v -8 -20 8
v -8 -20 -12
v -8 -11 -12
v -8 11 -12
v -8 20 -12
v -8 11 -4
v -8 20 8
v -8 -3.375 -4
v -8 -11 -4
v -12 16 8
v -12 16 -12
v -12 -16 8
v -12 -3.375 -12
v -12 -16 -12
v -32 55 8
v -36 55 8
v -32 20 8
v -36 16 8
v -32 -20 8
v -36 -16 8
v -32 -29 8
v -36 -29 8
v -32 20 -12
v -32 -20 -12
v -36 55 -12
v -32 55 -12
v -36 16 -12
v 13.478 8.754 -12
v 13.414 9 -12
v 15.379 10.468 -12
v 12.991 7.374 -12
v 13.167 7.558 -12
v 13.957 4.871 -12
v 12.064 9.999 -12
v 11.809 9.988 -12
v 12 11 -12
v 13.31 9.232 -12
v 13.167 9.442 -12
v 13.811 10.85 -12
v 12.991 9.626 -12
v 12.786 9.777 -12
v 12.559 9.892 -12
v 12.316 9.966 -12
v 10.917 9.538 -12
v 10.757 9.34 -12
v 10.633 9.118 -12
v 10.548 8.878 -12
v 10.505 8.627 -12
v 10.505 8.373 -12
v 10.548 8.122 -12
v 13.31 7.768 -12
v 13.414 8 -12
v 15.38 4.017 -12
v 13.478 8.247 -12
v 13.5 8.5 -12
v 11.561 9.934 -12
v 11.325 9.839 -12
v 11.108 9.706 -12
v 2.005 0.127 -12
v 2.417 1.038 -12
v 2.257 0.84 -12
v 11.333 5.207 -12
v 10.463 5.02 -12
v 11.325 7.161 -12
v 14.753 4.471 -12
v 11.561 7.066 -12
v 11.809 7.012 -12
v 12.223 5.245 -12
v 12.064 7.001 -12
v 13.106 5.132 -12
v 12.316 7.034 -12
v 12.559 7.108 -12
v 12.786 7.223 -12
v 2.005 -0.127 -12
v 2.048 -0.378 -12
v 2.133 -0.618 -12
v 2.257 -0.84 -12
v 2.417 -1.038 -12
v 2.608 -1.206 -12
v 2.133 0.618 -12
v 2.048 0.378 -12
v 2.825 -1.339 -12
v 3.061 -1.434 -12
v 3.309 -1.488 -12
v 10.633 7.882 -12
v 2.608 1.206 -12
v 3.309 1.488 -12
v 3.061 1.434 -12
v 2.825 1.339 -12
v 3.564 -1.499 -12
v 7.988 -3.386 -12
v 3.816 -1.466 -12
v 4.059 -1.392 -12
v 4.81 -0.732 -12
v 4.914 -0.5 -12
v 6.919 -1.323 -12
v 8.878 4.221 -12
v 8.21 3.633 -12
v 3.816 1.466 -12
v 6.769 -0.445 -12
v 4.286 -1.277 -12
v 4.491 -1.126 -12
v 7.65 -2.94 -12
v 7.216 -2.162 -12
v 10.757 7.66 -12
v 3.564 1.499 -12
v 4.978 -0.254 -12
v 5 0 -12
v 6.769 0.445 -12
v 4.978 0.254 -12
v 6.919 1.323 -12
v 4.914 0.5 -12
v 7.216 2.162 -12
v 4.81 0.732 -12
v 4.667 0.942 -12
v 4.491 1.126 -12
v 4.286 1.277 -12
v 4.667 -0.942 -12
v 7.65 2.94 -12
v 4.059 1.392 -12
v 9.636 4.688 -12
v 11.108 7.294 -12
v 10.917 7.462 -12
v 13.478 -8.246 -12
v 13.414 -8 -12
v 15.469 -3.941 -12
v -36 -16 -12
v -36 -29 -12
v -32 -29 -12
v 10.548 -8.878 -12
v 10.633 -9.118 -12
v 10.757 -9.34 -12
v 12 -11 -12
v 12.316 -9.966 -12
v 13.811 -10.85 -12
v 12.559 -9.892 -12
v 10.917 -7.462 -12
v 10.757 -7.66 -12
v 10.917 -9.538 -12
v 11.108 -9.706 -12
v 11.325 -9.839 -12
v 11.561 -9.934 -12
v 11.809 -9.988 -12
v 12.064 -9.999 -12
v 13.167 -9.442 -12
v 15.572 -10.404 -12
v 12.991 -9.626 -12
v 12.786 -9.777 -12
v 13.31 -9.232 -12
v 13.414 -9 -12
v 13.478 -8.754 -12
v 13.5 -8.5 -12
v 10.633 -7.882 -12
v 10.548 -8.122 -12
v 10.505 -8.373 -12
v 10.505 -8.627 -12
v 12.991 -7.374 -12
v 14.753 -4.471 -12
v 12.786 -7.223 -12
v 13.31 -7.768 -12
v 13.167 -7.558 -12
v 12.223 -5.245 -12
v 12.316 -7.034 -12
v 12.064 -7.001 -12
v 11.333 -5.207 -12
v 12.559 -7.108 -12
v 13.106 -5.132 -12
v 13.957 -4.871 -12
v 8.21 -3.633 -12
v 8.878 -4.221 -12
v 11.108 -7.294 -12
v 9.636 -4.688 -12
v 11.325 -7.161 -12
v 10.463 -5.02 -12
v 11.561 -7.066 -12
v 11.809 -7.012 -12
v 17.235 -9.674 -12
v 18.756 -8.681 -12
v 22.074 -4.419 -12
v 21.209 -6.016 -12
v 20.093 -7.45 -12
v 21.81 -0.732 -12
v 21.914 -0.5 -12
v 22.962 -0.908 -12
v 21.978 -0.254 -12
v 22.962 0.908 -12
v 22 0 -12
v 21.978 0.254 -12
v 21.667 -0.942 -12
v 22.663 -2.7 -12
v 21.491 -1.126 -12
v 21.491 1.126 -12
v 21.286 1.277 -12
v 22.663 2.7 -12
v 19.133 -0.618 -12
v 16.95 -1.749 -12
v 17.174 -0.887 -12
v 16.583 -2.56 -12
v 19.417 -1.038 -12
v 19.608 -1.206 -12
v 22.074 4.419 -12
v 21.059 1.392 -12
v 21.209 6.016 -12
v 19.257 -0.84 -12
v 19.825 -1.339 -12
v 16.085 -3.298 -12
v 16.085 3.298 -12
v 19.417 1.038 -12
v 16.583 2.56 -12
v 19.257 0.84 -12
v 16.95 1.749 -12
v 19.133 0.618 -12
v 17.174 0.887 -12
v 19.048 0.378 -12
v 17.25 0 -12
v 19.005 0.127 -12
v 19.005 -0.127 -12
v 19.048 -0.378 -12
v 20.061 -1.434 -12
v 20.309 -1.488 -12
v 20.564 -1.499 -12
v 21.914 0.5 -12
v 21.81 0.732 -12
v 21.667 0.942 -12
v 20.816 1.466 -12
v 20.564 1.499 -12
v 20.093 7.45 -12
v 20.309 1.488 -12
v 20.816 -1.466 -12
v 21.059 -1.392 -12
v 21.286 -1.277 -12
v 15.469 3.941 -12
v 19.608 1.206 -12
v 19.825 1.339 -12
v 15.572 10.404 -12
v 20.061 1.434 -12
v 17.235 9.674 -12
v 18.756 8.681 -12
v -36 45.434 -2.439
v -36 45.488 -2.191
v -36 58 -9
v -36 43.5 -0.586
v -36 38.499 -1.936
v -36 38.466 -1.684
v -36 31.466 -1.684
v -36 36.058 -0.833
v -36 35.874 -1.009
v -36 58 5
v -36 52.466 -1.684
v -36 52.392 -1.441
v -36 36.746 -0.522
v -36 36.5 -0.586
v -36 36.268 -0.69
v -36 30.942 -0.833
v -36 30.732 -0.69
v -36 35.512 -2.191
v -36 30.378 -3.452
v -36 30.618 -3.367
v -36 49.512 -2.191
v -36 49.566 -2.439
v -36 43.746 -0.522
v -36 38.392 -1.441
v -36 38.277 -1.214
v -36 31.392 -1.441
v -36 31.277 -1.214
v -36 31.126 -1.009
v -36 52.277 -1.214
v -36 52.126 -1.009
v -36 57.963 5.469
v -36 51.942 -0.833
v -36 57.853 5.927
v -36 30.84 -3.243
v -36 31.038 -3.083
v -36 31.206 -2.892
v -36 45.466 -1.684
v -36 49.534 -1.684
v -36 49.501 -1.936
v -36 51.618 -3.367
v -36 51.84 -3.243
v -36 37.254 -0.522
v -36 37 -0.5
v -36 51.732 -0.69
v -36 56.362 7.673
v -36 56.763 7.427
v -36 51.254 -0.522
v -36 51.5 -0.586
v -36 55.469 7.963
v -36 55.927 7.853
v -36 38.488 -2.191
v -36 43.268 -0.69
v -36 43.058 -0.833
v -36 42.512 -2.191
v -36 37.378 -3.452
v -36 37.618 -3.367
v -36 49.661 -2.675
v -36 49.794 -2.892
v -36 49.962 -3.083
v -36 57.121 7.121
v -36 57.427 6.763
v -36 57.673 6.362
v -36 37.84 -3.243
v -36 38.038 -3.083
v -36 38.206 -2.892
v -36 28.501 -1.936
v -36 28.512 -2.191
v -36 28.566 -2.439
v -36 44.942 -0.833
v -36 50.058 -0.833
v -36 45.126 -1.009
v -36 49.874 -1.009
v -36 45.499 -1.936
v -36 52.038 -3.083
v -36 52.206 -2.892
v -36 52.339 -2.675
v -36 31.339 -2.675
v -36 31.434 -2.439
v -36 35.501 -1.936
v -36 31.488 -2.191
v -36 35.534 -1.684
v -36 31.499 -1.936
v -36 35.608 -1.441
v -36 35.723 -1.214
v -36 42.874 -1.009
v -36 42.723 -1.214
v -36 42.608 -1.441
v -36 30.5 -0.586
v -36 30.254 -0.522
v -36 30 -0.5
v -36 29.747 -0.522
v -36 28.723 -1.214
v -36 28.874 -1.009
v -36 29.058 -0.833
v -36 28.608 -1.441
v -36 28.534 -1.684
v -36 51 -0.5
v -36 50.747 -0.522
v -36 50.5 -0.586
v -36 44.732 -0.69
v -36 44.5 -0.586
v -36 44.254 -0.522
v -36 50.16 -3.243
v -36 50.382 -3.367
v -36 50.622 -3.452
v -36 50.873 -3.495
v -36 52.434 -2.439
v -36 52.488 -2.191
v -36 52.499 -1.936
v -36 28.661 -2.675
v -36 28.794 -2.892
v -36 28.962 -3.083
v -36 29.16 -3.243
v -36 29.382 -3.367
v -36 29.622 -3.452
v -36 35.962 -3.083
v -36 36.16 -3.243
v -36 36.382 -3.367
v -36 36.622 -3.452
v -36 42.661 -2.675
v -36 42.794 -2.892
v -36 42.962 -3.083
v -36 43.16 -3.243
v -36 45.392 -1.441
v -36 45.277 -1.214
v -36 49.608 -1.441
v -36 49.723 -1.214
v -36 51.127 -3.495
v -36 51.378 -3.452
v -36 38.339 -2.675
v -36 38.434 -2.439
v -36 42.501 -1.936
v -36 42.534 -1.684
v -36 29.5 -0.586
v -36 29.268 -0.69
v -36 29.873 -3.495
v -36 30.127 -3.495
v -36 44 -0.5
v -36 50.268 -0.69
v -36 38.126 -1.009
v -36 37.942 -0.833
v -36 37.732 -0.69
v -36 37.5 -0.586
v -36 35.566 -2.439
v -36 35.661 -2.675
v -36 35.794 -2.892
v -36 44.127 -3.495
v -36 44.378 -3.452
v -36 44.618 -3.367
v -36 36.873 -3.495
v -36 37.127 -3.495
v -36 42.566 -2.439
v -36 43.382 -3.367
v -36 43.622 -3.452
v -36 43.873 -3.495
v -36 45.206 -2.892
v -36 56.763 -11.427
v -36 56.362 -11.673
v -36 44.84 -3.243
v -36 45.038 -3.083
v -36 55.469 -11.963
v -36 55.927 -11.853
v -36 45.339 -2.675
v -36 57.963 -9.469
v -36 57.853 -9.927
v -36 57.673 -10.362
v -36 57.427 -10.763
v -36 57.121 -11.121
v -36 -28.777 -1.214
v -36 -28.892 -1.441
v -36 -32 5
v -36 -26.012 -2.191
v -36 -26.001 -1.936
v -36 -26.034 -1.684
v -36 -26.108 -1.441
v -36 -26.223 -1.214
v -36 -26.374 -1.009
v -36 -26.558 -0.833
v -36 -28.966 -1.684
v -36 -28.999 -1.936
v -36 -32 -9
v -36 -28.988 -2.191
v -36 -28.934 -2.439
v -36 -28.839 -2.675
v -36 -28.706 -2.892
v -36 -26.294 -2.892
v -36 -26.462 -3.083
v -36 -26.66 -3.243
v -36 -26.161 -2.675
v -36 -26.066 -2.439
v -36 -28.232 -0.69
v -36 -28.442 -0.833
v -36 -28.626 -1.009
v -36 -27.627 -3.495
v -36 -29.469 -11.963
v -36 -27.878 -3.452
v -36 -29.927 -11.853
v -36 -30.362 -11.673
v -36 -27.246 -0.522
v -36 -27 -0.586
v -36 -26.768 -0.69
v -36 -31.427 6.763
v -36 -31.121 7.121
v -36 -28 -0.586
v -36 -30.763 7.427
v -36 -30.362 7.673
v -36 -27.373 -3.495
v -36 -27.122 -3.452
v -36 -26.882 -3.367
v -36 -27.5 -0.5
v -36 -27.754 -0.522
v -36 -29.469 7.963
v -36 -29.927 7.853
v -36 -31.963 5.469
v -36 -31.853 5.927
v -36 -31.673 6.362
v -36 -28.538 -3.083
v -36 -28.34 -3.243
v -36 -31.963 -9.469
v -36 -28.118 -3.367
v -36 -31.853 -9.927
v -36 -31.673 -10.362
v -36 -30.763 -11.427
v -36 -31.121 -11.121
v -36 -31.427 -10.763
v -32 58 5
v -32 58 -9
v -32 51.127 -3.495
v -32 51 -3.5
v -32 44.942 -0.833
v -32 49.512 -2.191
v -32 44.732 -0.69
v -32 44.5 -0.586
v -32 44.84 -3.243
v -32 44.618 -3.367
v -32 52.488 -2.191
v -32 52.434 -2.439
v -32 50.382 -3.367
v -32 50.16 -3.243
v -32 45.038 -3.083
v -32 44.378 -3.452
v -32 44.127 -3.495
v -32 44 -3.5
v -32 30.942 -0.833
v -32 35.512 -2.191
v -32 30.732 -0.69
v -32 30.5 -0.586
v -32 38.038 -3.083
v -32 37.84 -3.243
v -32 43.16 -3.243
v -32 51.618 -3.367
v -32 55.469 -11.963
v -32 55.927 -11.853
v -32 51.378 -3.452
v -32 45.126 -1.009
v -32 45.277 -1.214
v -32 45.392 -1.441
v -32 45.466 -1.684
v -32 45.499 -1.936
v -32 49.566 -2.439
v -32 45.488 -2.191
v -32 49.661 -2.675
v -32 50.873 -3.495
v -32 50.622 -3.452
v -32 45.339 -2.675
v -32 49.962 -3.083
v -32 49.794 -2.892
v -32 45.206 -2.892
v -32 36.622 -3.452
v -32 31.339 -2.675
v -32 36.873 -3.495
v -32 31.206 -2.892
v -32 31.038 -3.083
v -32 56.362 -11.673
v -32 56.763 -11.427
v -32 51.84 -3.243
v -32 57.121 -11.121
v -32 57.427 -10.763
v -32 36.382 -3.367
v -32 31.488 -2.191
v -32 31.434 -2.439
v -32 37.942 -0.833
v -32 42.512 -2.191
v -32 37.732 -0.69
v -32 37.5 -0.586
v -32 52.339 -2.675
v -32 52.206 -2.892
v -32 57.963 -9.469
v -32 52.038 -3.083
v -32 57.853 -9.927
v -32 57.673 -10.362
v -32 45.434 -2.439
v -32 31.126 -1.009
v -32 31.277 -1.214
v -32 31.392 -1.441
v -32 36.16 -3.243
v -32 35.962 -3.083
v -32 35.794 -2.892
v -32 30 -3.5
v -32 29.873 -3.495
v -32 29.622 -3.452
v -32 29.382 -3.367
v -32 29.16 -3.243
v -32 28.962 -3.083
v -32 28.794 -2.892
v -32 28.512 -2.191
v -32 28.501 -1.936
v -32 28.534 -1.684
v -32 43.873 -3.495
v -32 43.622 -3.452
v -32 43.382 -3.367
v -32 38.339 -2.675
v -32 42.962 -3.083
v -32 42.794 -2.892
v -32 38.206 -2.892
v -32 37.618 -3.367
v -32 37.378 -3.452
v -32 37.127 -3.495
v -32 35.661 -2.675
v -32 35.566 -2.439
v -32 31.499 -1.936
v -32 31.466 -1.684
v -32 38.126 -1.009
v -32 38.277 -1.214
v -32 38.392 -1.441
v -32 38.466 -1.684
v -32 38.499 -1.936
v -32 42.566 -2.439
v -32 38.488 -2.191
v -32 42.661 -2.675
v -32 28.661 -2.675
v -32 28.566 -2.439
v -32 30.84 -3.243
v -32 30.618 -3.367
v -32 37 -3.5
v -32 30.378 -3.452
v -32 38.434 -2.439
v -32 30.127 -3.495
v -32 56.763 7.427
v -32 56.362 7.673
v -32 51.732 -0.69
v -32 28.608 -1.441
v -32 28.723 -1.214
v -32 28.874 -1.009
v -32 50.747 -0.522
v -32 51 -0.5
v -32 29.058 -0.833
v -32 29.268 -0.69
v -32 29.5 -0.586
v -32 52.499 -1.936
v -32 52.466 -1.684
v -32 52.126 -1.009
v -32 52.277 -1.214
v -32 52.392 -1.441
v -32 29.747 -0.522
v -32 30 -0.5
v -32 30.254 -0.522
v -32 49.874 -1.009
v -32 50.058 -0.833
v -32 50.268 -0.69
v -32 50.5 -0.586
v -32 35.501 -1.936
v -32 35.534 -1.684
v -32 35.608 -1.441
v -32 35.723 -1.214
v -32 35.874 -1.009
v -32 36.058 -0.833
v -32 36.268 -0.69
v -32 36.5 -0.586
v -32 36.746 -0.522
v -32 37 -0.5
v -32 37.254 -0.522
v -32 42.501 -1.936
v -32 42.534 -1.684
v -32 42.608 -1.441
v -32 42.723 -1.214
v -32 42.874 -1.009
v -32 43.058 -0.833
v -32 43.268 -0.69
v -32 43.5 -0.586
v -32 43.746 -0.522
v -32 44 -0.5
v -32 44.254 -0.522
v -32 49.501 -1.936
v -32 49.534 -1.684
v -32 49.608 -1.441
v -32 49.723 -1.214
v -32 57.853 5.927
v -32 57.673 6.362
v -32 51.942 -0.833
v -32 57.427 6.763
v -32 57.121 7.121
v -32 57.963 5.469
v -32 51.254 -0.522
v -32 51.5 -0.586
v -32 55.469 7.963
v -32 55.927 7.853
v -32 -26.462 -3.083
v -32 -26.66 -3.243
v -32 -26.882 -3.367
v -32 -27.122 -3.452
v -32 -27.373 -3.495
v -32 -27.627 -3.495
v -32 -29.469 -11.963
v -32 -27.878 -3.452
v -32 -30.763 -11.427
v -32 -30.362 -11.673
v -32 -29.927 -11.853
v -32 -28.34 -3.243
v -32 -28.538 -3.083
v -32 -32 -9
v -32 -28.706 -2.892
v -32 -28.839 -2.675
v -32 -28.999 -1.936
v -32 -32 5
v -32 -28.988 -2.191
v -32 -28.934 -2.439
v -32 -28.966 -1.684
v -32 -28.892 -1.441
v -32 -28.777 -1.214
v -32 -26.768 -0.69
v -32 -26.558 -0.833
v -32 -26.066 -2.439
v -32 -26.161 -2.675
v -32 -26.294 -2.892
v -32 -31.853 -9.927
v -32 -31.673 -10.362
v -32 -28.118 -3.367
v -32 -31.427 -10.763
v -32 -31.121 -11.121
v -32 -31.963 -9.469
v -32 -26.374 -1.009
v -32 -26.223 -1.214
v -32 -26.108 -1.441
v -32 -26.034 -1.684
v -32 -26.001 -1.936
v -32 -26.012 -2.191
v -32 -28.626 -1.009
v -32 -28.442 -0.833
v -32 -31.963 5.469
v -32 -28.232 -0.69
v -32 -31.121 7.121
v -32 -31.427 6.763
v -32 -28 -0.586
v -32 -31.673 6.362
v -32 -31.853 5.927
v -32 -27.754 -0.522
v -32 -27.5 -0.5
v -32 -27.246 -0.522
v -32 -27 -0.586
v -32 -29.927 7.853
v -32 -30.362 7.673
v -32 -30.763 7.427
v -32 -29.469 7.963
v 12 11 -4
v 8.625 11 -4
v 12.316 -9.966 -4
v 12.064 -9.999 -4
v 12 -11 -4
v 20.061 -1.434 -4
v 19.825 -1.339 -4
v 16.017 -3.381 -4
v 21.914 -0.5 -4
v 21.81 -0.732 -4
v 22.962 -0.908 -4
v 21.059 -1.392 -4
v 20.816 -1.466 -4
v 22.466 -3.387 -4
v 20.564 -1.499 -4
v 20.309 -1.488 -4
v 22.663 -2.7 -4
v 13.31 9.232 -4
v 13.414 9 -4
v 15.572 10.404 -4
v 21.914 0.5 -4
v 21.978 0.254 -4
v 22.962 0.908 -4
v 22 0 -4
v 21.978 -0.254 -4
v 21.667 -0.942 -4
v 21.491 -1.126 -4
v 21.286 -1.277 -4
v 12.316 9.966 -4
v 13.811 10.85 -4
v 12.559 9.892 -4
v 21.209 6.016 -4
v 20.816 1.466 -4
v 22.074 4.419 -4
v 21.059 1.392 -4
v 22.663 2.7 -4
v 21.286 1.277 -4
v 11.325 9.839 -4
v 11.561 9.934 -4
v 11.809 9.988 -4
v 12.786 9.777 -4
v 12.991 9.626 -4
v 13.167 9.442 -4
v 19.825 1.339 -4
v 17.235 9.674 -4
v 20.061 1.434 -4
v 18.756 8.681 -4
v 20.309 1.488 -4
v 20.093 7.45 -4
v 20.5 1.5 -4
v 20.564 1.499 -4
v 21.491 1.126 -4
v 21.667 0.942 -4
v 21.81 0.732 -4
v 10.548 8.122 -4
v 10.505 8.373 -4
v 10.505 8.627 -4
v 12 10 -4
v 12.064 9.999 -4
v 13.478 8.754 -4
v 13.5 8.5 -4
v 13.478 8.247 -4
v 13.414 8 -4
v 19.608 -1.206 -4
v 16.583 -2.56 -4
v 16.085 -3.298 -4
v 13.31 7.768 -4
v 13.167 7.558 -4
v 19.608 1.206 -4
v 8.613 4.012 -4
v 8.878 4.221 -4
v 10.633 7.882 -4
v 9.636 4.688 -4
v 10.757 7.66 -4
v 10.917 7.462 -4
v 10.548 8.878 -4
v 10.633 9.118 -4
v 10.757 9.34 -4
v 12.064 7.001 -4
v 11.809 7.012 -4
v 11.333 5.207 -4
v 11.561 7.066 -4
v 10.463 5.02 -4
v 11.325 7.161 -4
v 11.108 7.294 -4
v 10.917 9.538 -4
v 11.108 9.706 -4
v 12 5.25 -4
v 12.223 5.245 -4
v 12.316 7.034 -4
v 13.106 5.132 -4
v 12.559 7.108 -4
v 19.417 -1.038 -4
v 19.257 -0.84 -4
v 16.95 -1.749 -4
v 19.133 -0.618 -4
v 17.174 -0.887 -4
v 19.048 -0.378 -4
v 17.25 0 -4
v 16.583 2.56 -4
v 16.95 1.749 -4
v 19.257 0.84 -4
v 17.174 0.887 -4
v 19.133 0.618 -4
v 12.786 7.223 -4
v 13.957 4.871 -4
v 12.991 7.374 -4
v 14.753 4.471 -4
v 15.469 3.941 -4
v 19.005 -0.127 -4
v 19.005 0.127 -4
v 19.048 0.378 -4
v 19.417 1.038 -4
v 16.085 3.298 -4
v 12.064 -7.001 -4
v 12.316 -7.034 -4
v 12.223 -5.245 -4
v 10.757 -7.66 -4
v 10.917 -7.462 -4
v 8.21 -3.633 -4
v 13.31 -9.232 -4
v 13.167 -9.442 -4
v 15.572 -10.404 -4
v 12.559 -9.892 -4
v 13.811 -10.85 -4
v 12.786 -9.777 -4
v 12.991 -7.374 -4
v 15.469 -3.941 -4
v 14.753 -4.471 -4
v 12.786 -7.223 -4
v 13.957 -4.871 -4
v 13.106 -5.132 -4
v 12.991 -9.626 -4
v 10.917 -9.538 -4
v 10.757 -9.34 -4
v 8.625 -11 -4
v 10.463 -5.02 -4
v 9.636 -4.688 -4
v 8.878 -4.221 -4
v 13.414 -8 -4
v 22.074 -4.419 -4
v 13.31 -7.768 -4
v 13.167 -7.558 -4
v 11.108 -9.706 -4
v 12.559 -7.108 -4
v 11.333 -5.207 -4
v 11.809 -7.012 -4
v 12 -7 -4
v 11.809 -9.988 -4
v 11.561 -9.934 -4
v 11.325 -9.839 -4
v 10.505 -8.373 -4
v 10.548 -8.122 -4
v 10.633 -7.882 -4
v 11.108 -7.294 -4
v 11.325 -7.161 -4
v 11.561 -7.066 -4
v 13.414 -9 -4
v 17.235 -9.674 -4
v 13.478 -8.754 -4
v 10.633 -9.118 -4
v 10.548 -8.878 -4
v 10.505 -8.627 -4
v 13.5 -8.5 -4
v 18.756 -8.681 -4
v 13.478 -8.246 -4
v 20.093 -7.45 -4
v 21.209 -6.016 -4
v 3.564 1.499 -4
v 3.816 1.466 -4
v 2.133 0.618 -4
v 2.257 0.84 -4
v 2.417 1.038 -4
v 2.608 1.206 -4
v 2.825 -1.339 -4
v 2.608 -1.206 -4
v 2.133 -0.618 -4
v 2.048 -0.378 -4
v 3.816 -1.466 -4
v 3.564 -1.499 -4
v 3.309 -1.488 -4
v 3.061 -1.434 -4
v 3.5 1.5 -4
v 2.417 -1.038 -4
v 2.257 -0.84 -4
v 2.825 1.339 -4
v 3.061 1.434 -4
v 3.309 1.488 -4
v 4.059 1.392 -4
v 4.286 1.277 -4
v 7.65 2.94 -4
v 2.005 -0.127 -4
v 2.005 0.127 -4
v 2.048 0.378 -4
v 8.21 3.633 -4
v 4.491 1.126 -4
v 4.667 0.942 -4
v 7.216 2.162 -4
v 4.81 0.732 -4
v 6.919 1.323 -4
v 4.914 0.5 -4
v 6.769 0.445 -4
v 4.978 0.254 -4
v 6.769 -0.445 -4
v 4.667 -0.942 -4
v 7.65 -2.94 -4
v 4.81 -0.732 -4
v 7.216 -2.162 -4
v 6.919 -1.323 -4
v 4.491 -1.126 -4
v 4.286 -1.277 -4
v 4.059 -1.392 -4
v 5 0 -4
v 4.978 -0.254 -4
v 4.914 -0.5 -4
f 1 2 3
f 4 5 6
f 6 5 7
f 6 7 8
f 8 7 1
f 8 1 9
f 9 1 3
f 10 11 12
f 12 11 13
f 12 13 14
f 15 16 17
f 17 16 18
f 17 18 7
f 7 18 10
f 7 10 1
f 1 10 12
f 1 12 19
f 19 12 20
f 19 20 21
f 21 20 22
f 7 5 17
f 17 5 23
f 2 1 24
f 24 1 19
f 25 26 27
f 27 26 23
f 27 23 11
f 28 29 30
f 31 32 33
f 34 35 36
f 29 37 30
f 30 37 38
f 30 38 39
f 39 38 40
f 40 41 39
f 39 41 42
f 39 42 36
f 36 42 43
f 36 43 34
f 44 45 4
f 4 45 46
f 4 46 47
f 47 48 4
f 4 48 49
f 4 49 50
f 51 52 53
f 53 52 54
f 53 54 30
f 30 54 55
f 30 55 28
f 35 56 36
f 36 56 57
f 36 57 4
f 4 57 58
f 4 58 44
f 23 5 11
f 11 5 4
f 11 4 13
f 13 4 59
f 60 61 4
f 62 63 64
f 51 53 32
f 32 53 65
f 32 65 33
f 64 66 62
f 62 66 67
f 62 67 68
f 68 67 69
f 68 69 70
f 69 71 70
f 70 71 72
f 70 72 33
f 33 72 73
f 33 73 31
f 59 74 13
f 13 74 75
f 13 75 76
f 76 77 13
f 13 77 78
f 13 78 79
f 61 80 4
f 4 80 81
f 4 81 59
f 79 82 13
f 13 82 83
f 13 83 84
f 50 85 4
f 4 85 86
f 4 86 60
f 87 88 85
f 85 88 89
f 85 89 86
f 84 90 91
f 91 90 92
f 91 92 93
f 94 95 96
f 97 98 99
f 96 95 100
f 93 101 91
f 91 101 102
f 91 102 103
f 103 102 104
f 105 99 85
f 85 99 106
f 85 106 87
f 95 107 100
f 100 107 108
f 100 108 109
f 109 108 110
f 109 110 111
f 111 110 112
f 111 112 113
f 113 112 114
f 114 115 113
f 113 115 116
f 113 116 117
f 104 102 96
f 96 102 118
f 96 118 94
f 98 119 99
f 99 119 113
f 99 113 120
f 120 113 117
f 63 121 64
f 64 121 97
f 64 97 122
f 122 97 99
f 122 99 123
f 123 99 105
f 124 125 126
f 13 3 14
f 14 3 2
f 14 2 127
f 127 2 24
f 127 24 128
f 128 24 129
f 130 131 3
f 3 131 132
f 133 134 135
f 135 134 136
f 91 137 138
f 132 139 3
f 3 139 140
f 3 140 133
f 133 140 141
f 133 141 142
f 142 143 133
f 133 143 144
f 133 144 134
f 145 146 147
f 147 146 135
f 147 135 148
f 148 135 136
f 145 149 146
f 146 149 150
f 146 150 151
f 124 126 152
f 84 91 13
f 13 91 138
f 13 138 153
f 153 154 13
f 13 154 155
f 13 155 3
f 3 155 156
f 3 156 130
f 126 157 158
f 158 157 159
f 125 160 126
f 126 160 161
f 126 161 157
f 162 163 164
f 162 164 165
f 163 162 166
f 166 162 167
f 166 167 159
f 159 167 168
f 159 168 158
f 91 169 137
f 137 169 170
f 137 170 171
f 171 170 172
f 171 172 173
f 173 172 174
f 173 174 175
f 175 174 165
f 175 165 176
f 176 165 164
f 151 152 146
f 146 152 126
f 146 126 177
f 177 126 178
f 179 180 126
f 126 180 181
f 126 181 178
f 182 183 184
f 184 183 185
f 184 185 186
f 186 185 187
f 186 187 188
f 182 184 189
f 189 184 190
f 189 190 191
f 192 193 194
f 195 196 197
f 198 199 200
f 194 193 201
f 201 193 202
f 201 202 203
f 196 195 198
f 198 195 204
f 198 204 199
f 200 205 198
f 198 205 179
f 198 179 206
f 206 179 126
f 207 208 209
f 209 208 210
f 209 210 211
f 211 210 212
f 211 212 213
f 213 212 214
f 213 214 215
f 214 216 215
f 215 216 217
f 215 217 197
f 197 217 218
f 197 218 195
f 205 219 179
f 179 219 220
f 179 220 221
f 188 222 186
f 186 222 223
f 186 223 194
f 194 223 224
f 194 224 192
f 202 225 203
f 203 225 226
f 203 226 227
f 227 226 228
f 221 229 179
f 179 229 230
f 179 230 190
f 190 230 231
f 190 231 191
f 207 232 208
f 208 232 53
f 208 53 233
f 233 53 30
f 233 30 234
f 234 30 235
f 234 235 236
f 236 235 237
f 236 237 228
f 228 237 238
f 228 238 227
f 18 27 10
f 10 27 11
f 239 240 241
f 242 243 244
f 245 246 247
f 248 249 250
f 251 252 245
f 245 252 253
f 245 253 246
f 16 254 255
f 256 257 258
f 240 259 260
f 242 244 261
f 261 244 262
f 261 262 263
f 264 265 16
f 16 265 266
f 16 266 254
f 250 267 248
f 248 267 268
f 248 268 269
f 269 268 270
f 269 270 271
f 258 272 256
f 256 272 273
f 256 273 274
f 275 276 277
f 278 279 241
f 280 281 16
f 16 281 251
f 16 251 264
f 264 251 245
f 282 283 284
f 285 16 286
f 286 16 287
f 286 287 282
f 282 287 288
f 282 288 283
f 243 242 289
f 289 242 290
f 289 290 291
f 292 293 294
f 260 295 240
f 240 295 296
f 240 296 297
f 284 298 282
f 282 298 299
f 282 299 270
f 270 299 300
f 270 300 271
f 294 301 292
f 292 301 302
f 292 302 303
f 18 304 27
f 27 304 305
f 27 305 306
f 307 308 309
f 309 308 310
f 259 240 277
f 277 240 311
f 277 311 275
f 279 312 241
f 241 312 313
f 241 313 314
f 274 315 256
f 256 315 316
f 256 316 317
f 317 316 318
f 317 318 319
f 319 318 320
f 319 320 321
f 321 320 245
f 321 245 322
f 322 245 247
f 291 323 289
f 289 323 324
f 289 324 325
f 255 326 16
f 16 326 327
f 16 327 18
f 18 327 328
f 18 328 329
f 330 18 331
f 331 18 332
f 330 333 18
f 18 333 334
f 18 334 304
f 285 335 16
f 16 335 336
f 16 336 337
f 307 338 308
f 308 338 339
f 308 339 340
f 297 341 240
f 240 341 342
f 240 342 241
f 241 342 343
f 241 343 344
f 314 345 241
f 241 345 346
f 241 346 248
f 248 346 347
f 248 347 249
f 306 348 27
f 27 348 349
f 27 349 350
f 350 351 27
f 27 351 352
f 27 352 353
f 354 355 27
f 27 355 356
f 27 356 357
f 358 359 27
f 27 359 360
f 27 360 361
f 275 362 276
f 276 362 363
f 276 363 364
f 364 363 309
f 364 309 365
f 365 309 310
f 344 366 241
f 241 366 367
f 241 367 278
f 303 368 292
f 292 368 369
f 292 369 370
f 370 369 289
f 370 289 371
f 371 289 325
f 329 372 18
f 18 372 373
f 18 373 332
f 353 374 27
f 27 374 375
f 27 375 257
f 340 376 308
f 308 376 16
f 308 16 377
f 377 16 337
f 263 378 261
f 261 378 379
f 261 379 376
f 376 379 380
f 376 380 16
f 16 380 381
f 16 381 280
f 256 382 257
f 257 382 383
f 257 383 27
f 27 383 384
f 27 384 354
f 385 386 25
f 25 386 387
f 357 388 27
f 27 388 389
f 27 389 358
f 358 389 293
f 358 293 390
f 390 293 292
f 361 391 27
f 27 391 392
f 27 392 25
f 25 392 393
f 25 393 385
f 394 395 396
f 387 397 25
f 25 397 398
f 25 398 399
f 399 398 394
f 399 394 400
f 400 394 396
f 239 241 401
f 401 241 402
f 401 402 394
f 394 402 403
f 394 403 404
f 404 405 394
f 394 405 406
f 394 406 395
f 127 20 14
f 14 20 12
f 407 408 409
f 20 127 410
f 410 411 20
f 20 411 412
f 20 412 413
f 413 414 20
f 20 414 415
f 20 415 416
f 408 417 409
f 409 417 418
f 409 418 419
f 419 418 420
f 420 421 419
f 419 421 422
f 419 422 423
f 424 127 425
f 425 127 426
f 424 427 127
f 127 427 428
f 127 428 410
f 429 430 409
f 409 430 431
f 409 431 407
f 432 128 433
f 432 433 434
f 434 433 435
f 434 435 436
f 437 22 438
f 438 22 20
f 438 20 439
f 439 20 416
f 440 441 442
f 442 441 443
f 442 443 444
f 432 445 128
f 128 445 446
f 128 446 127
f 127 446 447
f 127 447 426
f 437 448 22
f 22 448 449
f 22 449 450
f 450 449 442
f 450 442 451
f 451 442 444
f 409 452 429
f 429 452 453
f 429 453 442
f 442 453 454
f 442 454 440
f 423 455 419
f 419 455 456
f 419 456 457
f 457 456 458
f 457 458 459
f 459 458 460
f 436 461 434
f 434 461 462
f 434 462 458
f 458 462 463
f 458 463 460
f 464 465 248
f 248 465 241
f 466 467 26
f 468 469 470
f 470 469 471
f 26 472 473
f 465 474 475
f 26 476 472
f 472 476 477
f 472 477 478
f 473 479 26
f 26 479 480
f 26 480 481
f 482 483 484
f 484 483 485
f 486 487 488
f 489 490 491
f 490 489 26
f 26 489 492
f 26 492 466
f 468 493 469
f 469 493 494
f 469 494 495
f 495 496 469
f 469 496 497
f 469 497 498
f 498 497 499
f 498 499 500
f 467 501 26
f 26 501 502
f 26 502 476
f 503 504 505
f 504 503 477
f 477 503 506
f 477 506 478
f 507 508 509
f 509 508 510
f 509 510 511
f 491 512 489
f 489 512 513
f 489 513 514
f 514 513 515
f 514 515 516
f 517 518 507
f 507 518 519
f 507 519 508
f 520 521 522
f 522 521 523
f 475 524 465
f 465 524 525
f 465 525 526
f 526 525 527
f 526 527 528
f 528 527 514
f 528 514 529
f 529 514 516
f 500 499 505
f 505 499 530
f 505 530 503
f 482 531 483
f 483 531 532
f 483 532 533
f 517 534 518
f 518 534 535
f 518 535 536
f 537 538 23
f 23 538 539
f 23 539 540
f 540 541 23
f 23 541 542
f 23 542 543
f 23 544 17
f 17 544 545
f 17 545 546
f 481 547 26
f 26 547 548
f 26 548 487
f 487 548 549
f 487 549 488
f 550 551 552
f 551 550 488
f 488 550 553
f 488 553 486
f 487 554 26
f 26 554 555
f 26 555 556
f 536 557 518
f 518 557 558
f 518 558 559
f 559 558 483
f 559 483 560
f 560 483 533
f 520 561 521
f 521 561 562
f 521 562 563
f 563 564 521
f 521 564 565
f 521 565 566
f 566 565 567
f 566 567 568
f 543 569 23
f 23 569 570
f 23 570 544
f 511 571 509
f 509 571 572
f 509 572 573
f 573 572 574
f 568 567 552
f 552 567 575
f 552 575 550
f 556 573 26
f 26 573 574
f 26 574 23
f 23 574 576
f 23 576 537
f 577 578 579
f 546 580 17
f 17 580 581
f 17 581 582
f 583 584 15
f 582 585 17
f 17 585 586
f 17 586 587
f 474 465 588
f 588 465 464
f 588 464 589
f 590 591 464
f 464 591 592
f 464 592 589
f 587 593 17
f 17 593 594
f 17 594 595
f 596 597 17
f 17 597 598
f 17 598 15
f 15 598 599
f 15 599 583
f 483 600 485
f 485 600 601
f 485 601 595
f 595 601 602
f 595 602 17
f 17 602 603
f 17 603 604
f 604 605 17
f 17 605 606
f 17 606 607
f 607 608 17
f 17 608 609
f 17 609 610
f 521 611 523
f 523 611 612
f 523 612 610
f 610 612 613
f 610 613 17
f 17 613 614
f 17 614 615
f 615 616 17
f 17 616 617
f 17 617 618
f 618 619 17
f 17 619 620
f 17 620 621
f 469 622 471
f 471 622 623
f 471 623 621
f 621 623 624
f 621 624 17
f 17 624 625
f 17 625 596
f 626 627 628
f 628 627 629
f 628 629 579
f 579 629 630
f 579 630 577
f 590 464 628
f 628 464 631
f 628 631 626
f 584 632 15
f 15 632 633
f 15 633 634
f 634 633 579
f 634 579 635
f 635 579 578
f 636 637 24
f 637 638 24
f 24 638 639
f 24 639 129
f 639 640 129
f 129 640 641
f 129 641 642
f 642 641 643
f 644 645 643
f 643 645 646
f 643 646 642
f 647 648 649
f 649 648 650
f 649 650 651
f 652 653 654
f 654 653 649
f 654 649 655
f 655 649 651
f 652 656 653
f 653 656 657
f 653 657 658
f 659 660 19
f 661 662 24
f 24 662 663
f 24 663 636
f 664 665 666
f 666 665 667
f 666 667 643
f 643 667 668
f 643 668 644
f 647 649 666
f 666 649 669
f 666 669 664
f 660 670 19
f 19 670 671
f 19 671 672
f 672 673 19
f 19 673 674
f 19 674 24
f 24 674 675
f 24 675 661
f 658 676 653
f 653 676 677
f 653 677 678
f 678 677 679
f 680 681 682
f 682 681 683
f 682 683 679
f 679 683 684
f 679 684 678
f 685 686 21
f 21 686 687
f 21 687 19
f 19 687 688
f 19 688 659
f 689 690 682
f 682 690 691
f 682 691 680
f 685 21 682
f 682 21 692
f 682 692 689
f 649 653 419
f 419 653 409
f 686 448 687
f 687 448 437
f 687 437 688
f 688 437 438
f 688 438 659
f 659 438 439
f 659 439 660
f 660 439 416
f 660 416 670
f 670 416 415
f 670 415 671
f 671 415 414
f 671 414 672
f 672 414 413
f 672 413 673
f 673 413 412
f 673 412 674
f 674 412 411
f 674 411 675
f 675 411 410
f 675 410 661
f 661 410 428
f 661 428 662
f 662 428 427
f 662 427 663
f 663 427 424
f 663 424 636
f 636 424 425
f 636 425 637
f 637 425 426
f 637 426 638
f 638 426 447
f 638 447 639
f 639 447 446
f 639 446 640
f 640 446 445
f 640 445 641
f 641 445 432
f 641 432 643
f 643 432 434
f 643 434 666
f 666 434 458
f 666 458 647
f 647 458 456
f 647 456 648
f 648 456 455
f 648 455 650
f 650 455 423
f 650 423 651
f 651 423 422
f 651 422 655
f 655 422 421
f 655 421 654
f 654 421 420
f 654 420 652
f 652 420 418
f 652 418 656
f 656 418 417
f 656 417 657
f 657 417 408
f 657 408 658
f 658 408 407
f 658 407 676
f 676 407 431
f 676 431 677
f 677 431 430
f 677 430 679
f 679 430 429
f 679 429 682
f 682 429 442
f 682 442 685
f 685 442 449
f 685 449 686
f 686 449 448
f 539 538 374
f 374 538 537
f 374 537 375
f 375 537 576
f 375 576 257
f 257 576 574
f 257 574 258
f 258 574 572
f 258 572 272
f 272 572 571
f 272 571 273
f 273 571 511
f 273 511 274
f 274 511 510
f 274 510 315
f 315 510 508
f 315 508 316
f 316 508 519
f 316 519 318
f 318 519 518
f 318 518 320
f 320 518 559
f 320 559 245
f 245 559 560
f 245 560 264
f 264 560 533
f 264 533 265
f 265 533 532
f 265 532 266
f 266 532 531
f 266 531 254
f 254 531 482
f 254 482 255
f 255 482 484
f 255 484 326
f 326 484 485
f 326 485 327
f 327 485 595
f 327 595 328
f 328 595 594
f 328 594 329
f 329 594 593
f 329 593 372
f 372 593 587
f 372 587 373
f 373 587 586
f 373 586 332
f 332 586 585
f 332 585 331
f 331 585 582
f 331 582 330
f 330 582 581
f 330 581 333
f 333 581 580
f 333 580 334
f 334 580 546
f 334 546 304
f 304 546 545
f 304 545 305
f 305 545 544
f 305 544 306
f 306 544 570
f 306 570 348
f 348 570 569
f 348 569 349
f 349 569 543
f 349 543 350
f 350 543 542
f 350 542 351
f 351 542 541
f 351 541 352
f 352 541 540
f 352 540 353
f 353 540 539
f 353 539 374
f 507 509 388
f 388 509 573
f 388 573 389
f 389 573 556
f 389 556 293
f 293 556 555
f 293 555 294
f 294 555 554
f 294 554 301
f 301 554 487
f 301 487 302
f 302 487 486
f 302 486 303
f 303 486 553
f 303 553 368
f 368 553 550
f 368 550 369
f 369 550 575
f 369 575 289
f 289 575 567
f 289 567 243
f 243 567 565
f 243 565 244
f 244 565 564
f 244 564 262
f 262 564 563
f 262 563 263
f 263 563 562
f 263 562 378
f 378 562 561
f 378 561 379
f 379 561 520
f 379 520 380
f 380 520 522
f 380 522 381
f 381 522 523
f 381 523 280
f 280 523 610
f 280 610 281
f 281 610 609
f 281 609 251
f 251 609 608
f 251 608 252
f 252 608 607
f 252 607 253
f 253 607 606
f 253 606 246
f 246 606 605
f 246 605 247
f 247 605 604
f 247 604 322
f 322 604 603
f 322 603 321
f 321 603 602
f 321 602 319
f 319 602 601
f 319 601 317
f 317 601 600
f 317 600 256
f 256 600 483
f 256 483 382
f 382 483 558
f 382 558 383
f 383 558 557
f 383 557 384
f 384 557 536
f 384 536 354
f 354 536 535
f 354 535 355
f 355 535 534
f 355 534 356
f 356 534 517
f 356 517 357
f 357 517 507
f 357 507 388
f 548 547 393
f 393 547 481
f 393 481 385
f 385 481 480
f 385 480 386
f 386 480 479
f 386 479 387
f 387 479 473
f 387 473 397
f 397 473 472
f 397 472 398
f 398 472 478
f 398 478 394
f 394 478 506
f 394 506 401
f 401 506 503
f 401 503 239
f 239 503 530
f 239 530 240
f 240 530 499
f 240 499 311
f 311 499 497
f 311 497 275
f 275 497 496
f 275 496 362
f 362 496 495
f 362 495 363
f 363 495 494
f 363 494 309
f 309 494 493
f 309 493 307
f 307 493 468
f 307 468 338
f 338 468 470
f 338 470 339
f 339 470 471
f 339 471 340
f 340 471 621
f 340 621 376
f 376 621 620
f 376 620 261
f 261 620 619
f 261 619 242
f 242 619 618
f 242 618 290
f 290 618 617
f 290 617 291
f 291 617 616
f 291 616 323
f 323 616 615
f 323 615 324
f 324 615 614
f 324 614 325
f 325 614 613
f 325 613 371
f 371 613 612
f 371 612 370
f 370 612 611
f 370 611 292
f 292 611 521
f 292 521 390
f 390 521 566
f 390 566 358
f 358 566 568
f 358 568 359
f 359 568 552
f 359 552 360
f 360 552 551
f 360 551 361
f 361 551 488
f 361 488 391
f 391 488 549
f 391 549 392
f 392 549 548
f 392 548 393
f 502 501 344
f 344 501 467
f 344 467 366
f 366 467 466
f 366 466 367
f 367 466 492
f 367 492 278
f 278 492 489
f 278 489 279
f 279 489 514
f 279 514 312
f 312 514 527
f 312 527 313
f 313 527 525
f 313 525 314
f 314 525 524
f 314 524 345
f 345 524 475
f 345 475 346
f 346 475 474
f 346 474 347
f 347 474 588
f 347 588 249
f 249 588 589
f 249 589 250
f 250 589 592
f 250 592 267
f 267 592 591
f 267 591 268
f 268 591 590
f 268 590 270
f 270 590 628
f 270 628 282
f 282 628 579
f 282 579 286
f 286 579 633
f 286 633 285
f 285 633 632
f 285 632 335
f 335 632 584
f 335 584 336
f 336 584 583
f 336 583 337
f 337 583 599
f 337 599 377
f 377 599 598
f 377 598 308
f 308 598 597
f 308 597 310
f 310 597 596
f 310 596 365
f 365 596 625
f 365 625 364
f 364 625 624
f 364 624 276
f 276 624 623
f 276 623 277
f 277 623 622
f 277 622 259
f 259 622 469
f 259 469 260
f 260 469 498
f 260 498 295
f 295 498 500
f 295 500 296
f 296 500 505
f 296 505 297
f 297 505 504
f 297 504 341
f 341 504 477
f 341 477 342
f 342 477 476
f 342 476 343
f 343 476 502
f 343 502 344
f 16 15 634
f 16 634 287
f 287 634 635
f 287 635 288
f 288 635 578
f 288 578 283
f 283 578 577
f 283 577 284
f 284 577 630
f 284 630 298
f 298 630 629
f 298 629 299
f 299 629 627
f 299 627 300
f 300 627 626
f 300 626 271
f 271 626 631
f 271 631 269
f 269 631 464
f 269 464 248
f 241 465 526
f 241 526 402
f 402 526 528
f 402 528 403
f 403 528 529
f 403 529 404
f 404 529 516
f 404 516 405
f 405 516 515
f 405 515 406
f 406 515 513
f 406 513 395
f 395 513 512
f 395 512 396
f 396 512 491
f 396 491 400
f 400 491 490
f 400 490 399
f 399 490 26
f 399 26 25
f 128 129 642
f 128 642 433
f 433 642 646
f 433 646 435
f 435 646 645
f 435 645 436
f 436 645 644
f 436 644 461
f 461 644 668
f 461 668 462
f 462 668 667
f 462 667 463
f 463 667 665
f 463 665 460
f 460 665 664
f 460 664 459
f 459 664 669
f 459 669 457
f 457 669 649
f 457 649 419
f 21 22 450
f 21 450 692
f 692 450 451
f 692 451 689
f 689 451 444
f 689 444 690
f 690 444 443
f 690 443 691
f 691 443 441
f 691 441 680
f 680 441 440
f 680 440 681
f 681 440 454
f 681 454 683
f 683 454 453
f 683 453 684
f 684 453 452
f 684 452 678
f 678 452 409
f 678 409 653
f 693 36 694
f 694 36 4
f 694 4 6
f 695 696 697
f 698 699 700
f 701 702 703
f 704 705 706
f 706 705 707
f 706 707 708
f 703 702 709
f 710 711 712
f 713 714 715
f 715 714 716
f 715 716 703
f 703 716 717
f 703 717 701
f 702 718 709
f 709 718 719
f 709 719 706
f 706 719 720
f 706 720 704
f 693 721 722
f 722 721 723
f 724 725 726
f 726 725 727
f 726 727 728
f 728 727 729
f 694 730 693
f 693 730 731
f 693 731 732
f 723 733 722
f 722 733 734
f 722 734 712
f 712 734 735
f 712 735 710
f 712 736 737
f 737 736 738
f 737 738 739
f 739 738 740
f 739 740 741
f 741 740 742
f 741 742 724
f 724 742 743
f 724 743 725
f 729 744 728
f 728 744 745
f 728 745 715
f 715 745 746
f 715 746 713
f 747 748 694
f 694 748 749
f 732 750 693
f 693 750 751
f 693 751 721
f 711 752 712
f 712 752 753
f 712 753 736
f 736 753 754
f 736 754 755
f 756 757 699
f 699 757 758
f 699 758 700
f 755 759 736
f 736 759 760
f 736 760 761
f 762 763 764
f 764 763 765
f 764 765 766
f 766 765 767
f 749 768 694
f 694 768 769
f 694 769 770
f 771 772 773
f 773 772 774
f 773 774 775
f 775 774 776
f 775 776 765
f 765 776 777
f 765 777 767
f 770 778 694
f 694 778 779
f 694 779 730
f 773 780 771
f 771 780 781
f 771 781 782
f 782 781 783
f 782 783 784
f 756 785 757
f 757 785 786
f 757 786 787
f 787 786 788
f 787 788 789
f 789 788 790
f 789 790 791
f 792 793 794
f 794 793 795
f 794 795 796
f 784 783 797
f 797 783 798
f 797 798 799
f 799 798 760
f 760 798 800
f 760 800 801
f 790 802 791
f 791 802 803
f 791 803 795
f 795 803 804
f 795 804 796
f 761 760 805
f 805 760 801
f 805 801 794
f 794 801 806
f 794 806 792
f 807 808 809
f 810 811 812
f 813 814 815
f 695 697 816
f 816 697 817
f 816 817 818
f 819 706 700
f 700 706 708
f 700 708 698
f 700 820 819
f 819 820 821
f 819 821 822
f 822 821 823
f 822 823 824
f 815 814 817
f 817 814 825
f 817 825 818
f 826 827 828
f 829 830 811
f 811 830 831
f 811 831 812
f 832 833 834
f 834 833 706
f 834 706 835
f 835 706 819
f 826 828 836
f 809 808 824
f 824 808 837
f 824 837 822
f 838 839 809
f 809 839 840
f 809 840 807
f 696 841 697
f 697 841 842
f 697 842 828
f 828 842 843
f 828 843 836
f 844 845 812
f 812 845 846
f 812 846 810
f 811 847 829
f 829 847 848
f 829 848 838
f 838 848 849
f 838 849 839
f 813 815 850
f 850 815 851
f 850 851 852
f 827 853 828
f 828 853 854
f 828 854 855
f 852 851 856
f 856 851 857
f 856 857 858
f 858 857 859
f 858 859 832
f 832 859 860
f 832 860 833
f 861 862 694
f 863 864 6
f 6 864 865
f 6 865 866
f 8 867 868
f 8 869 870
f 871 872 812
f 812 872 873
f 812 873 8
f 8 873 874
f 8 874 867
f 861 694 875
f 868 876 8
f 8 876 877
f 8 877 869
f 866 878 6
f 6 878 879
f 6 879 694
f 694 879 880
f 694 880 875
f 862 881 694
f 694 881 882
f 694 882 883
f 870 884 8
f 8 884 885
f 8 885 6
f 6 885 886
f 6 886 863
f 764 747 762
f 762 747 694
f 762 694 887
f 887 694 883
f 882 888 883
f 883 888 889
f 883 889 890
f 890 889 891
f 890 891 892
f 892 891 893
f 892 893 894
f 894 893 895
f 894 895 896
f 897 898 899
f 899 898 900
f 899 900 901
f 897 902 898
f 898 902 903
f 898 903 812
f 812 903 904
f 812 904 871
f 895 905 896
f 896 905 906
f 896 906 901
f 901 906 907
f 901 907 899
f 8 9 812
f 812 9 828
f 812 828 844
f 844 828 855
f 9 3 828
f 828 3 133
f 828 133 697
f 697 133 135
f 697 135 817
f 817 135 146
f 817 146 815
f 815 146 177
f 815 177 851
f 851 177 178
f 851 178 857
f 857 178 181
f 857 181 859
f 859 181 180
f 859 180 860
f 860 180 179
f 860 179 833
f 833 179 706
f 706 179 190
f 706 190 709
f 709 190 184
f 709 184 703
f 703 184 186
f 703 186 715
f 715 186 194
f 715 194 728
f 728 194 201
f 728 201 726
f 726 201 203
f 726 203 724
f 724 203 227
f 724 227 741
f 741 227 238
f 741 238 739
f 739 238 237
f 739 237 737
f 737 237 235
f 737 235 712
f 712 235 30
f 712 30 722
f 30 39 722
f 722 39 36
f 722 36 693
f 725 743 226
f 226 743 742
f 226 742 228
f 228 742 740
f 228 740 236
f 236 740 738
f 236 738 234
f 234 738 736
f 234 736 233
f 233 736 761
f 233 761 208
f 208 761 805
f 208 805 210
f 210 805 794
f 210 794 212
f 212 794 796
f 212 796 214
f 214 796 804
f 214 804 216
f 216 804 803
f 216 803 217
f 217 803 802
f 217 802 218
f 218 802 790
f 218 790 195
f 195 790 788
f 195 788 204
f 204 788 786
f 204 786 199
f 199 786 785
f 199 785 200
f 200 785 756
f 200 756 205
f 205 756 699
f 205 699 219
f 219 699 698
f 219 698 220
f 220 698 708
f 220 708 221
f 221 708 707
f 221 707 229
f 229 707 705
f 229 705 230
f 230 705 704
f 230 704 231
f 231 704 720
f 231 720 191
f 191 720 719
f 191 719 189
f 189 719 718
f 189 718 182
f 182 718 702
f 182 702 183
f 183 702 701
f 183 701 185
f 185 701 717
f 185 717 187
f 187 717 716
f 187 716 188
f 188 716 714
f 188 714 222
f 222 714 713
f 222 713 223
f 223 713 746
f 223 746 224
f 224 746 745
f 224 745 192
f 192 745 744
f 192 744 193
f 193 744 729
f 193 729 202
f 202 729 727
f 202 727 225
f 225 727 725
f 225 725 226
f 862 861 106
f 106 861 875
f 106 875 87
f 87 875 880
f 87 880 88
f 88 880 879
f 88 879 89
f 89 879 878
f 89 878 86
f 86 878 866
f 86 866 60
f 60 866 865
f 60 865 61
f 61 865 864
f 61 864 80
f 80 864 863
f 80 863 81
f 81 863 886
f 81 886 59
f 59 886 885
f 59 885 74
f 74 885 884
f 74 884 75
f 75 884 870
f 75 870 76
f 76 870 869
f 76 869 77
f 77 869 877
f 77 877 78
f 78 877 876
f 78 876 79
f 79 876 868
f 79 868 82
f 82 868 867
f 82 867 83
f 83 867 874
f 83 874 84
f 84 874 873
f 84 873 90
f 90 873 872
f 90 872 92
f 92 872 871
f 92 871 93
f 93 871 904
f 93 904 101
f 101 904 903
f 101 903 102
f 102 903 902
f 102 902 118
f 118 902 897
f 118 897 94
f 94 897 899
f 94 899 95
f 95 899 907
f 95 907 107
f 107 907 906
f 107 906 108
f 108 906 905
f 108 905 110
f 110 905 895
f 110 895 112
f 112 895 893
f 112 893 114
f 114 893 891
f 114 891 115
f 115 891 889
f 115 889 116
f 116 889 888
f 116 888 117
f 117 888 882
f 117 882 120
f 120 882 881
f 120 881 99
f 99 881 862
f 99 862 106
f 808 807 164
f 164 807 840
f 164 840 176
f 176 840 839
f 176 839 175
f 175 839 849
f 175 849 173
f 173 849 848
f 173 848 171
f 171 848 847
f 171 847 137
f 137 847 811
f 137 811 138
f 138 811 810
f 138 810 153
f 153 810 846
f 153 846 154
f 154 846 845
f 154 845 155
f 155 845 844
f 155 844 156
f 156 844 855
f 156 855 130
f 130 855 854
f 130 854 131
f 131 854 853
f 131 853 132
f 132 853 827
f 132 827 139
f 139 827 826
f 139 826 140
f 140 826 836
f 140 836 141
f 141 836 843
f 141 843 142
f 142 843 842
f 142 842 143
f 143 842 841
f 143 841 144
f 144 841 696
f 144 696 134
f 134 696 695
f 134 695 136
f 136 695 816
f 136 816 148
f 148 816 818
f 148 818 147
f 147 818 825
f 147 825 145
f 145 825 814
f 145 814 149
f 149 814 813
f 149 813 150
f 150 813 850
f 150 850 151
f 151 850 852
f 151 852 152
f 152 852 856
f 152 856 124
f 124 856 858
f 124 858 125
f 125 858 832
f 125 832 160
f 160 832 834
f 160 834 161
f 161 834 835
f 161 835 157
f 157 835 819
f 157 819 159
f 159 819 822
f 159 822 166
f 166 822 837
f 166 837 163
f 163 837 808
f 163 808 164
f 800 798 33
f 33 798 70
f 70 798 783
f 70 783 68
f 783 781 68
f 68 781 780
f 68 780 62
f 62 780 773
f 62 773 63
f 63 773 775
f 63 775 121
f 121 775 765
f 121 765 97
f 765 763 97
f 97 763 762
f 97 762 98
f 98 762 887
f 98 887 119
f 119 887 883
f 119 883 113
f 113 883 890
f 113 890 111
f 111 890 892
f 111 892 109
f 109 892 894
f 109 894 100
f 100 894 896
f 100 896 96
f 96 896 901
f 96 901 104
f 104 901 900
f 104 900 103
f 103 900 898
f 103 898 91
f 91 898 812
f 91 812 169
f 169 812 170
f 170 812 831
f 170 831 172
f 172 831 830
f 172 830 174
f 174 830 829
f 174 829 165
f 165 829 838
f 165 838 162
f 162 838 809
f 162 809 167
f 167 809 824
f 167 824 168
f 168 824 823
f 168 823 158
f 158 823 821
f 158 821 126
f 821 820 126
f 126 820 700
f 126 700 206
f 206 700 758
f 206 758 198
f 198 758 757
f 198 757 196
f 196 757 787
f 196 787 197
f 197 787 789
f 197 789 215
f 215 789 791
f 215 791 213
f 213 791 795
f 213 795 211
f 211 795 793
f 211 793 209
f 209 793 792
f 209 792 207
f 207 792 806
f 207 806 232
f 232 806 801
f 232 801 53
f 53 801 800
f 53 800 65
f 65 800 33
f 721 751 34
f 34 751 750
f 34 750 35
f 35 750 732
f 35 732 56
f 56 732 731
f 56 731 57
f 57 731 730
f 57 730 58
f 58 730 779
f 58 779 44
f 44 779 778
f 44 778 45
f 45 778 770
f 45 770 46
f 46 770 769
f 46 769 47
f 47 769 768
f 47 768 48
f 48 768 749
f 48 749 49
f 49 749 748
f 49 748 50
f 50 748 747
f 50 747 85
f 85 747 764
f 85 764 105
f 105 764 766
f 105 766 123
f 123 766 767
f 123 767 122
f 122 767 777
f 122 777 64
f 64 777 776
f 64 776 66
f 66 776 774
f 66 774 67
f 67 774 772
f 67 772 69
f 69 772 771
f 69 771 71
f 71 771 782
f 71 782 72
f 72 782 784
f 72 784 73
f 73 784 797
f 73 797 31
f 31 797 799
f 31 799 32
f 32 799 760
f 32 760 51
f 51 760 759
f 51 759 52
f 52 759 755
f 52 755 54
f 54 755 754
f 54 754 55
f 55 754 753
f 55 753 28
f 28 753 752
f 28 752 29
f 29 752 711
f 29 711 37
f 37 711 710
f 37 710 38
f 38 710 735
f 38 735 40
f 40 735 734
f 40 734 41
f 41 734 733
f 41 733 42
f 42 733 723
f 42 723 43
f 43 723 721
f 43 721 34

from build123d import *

# Parameters (mm, degrees)
BOSS_EXTRUDE2_DEPTH  = 8
SKETCH3_R            = 5.25
CUT_EXTRUDE1_DEPTH   = 8
SKETCH7_W            = 4
SKETCH7_H            = 9
BOSS_EXTRUDE3_DEPTH  = 8
SKETCH8_W            = 4
SKETCH8_H            = 40
BOSS_EXTRUDE4_DEPTH  = 12
SKETCH9_W            = 20
SKETCH9_H            = 4
BOSS_EXTRUDE5_DEPTH  = 24
SKETCH10_W           = 20
SKETCH10_H           = 4
BOSS_EXTRUDE6_DEPTH  = 24
SKETCH12_W           = 4
SKETCH12_H           = 38
BOSS_EXTRUDE7_DEPTH  = 20
SKETCH13_W           = 4
SKETCH13_H           = 20
BOSS_EXTRUDE8_DEPTH  = 12
SKETCH14_R           = 1.5
CUT_EXTRUDE2_DEPTH   = 12
SKETCH15_R           = 1.5
CUT_EXTRUDE3_DEPTH   = 12
FILLET1_R            = 3
SKETCH16_R           = 1.5
CUT_EXTRUDE4_DEPTH   = 12
SKETCH21_W           = 8
SKETCH21_H           = 22
BOSS_EXTRUDE9_DEPTH  = 20
SKETCH22_R           = 11
BOSS_EXTRUDE10_DEPTH = 8
SKETCH23_R           = 1.5
SKETCH23_R_2         = 5.25
CUT_EXTRUDE6_DEPTH   = 21
SKETCH24_R           = 1.5
SKETCH24_R_2         = 5.25
CUT_EXTRUDE7_DEPTH   = 8


with BuildPart() as part:
    # Sketch1 → Boss-Extrude2 (new body)
    with BuildSketch(Plane.XY):
        with BuildLine():
            ThreePointArc((12, 11), (1, 0), (12, -11))
            Line((12, -11), (12, 11))
        make_face()
        with BuildLine():
            Line((12, 11), (12, -11))
            ThreePointArc((12, -11), (19.778174593, -7.778174593), (23, 0))
            ThreePointArc((23, 0), (19.778174593, 7.778174593), (12, 11))
        make_face()
        with BuildLine():
            Line((-12, 11), (-12, -11))
            Line((-12, -11), (12, -11))
            ThreePointArc((12, -11), (1, 0), (12, 11))
            Line((12, 11), (-12, 11))
        make_face()
    extrude(amount=BOSS_EXTRUDE2_DEPTH)

    # Sketch3 → Cut-Extrude1 (cut)
    with BuildSketch(Plane.XY.offset(8)):
        with Locations((12, 0)):
            Circle(SKETCH3_R)
    extrude(amount=-CUT_EXTRUDE1_DEPTH, mode=Mode.SUBTRACT)

    # Sketch7 → Boss-Extrude3 (add)
    with BuildSketch(Plane.XY.offset(8)):
        with Locations((-10, 15.5)):
            Rectangle(SKETCH7_W, SKETCH7_H)
        with Locations((-10, -15.5)):
            Rectangle(SKETCH7_W, SKETCH7_H)
    extrude(amount=-BOSS_EXTRUDE3_DEPTH)

    # Sketch8 → Boss-Extrude4 (add)
    with BuildSketch(Plane(origin=(0, 0, 0), x_dir=(-1, 0, 0), z_dir=(0, 0, -1))):
        with Locations((10, 0)):
            Rectangle(SKETCH8_W, SKETCH8_H)
    extrude(amount=BOSS_EXTRUDE4_DEPTH)

    # Sketch9 → Boss-Extrude5 (add)
    with BuildSketch(Plane.ZY.offset(12)):
        with Locations((-2, 18)):
            Rectangle(SKETCH9_W, SKETCH9_H)
    extrude(amount=BOSS_EXTRUDE5_DEPTH)

    # Sketch10 → Boss-Extrude6 (add)
    with BuildSketch(Plane.ZY.offset(12)):
        with Locations((-2, -18)):
            Rectangle(SKETCH10_W, SKETCH10_H)
    extrude(amount=BOSS_EXTRUDE6_DEPTH)

    # Sketch12 → Boss-Extrude7 (add)
    with BuildSketch(Plane(origin=(0, 0, -12), x_dir=(-1, 0, 0), z_dir=(0, 0, -1))):
        with Locations((34, 39)):
            Rectangle(SKETCH12_W, SKETCH12_H)
    extrude(amount=-BOSS_EXTRUDE7_DEPTH)

    # Sketch13 → Boss-Extrude8 (add)
    with BuildSketch(Plane.XZ.offset(20)):
        with Locations((-34, -2)):
            Rectangle(SKETCH13_W, SKETCH13_H)
    extrude(amount=BOSS_EXTRUDE8_DEPTH)

    # Sketch14 → Cut-Extrude2 (cut)
    with BuildSketch(Plane.ZY.offset(36)):
        with Locations((-2, -27.5)):
            Circle(SKETCH14_R)
    extrude(amount=-CUT_EXTRUDE2_DEPTH, mode=Mode.SUBTRACT)

    # Sketch15 → Cut-Extrude3 (cut)
    with BuildSketch(Plane.ZY.offset(36)):
        with Locations((-2, 51)):
            Circle(SKETCH15_R)
        with Locations((-2, 44)):
            Circle(SKETCH15_R)
        with Locations((-2, 37)):
            Circle(SKETCH15_R)
        with Locations((-2, 30)):
            Circle(SKETCH15_R)
    extrude(amount=-CUT_EXTRUDE3_DEPTH, mode=Mode.SUBTRACT)

    # Fillet1
    fillet1_edges = [part.edges().sort_by_distance(p)[0] for p in [
        (-34, -32, -12),
        (-34, -32, 8),
        (-34, 58, 8),
        (-34, 58, -12),
    ]]
    fillet(fillet1_edges, radius=FILLET1_R)

    # Sketch16 → Cut-Extrude4 (cut)
    with BuildSketch(Plane(origin=(0, 0, 0), x_dir=(-1, 0, 0), z_dir=(0, 0, -1))):
        with Locations((-12, 8.5)):
            Circle(SKETCH16_R)
        with Locations((-20.5, 0)):
            Circle(SKETCH16_R)
        with Locations((-12, -8.5)):
            Circle(SKETCH16_R)
        with Locations((-3.5, 0)):
            Circle(SKETCH16_R)
    extrude(amount=-CUT_EXTRUDE4_DEPTH, mode=Mode.SUBTRACT)

    # Sketch21 → Boss-Extrude9 (add)
    with BuildSketch(Plane(origin=(-8, 0, 0), x_dir=(0, 0, -1), z_dir=(1, 0, 0))):
        with Locations((8, 0)):
            Rectangle(SKETCH21_W, SKETCH21_H)
    extrude(amount=BOSS_EXTRUDE9_DEPTH)

    # Sketch22 → Boss-Extrude10 (add)
    with BuildSketch(Plane(origin=(0, 0, -12), x_dir=(-1, 0, 0), z_dir=(0, 0, -1))):
        with Locations((-12, 0)):
            Circle(SKETCH22_R)
    extrude(amount=-BOSS_EXTRUDE10_DEPTH)

    # Sketch23 → Cut-Extrude6 (cut, through all)
    with BuildSketch(Plane.XY.offset(8)):
        with Locations((12, 8.5)):
            Circle(SKETCH23_R)
        with Locations((20.5, 0)):
            Circle(SKETCH23_R)
        with Locations((3.5, 0)):
            Circle(SKETCH23_R)
        with Locations((12, -8.5)):
            Circle(SKETCH23_R)
        with Locations((12, 0)):
            Circle(SKETCH23_R_2)
    extrude(amount=-CUT_EXTRUDE6_DEPTH, mode=Mode.SUBTRACT)

    # Sketch24 → Cut-Extrude7 (cut)
    with BuildSketch(Plane.XY.offset(8)):
        with BuildLine():
            Line((12, 11), (-8, 11))
            Line((-8, 11), (-8, -11))
            Line((-8, -11), (12, -11))
            ThreePointArc((12, -11), (1, 0), (12, 11))
        make_face()
        with BuildLine():
            Line((12, 10), (12, 11))
            ThreePointArc((12, 11), (1, 0), (12, -11))
            Line((12, -11), (12, -10))
            ThreePointArc((12, -10), (10.5, -8.5), (12, -7))
            Line((12, -7), (12, -5.25))
            ThreePointArc((12, -5.25), (6.75, 0), (12, 5.25))
            Line((12, 5.25), (12, 7))
            ThreePointArc((12, 7), (10.5, 8.5), (12, 10))
        make_face()
        with Locations((3.5, 0)):
            Circle(SKETCH24_R, mode=Mode.SUBTRACT)
        with Locations((12, 8.5)):
            Circle(SKETCH24_R)
        with Locations((12, 0)):
            Circle(SKETCH24_R_2)
        with Locations((12, -8.5)):
            Circle(SKETCH24_R)
        with BuildLine():
            Line((12, 11), (12, -11))
            ThreePointArc((12, -11), (23, 0), (12, 11))
        make_face()
        with Locations((20.5, 0)):
            Circle(SKETCH24_R, mode=Mode.SUBTRACT)
    extrude(amount=-CUT_EXTRUDE7_DEPTH, mode=Mode.SUBTRACT)


solid = part.part
